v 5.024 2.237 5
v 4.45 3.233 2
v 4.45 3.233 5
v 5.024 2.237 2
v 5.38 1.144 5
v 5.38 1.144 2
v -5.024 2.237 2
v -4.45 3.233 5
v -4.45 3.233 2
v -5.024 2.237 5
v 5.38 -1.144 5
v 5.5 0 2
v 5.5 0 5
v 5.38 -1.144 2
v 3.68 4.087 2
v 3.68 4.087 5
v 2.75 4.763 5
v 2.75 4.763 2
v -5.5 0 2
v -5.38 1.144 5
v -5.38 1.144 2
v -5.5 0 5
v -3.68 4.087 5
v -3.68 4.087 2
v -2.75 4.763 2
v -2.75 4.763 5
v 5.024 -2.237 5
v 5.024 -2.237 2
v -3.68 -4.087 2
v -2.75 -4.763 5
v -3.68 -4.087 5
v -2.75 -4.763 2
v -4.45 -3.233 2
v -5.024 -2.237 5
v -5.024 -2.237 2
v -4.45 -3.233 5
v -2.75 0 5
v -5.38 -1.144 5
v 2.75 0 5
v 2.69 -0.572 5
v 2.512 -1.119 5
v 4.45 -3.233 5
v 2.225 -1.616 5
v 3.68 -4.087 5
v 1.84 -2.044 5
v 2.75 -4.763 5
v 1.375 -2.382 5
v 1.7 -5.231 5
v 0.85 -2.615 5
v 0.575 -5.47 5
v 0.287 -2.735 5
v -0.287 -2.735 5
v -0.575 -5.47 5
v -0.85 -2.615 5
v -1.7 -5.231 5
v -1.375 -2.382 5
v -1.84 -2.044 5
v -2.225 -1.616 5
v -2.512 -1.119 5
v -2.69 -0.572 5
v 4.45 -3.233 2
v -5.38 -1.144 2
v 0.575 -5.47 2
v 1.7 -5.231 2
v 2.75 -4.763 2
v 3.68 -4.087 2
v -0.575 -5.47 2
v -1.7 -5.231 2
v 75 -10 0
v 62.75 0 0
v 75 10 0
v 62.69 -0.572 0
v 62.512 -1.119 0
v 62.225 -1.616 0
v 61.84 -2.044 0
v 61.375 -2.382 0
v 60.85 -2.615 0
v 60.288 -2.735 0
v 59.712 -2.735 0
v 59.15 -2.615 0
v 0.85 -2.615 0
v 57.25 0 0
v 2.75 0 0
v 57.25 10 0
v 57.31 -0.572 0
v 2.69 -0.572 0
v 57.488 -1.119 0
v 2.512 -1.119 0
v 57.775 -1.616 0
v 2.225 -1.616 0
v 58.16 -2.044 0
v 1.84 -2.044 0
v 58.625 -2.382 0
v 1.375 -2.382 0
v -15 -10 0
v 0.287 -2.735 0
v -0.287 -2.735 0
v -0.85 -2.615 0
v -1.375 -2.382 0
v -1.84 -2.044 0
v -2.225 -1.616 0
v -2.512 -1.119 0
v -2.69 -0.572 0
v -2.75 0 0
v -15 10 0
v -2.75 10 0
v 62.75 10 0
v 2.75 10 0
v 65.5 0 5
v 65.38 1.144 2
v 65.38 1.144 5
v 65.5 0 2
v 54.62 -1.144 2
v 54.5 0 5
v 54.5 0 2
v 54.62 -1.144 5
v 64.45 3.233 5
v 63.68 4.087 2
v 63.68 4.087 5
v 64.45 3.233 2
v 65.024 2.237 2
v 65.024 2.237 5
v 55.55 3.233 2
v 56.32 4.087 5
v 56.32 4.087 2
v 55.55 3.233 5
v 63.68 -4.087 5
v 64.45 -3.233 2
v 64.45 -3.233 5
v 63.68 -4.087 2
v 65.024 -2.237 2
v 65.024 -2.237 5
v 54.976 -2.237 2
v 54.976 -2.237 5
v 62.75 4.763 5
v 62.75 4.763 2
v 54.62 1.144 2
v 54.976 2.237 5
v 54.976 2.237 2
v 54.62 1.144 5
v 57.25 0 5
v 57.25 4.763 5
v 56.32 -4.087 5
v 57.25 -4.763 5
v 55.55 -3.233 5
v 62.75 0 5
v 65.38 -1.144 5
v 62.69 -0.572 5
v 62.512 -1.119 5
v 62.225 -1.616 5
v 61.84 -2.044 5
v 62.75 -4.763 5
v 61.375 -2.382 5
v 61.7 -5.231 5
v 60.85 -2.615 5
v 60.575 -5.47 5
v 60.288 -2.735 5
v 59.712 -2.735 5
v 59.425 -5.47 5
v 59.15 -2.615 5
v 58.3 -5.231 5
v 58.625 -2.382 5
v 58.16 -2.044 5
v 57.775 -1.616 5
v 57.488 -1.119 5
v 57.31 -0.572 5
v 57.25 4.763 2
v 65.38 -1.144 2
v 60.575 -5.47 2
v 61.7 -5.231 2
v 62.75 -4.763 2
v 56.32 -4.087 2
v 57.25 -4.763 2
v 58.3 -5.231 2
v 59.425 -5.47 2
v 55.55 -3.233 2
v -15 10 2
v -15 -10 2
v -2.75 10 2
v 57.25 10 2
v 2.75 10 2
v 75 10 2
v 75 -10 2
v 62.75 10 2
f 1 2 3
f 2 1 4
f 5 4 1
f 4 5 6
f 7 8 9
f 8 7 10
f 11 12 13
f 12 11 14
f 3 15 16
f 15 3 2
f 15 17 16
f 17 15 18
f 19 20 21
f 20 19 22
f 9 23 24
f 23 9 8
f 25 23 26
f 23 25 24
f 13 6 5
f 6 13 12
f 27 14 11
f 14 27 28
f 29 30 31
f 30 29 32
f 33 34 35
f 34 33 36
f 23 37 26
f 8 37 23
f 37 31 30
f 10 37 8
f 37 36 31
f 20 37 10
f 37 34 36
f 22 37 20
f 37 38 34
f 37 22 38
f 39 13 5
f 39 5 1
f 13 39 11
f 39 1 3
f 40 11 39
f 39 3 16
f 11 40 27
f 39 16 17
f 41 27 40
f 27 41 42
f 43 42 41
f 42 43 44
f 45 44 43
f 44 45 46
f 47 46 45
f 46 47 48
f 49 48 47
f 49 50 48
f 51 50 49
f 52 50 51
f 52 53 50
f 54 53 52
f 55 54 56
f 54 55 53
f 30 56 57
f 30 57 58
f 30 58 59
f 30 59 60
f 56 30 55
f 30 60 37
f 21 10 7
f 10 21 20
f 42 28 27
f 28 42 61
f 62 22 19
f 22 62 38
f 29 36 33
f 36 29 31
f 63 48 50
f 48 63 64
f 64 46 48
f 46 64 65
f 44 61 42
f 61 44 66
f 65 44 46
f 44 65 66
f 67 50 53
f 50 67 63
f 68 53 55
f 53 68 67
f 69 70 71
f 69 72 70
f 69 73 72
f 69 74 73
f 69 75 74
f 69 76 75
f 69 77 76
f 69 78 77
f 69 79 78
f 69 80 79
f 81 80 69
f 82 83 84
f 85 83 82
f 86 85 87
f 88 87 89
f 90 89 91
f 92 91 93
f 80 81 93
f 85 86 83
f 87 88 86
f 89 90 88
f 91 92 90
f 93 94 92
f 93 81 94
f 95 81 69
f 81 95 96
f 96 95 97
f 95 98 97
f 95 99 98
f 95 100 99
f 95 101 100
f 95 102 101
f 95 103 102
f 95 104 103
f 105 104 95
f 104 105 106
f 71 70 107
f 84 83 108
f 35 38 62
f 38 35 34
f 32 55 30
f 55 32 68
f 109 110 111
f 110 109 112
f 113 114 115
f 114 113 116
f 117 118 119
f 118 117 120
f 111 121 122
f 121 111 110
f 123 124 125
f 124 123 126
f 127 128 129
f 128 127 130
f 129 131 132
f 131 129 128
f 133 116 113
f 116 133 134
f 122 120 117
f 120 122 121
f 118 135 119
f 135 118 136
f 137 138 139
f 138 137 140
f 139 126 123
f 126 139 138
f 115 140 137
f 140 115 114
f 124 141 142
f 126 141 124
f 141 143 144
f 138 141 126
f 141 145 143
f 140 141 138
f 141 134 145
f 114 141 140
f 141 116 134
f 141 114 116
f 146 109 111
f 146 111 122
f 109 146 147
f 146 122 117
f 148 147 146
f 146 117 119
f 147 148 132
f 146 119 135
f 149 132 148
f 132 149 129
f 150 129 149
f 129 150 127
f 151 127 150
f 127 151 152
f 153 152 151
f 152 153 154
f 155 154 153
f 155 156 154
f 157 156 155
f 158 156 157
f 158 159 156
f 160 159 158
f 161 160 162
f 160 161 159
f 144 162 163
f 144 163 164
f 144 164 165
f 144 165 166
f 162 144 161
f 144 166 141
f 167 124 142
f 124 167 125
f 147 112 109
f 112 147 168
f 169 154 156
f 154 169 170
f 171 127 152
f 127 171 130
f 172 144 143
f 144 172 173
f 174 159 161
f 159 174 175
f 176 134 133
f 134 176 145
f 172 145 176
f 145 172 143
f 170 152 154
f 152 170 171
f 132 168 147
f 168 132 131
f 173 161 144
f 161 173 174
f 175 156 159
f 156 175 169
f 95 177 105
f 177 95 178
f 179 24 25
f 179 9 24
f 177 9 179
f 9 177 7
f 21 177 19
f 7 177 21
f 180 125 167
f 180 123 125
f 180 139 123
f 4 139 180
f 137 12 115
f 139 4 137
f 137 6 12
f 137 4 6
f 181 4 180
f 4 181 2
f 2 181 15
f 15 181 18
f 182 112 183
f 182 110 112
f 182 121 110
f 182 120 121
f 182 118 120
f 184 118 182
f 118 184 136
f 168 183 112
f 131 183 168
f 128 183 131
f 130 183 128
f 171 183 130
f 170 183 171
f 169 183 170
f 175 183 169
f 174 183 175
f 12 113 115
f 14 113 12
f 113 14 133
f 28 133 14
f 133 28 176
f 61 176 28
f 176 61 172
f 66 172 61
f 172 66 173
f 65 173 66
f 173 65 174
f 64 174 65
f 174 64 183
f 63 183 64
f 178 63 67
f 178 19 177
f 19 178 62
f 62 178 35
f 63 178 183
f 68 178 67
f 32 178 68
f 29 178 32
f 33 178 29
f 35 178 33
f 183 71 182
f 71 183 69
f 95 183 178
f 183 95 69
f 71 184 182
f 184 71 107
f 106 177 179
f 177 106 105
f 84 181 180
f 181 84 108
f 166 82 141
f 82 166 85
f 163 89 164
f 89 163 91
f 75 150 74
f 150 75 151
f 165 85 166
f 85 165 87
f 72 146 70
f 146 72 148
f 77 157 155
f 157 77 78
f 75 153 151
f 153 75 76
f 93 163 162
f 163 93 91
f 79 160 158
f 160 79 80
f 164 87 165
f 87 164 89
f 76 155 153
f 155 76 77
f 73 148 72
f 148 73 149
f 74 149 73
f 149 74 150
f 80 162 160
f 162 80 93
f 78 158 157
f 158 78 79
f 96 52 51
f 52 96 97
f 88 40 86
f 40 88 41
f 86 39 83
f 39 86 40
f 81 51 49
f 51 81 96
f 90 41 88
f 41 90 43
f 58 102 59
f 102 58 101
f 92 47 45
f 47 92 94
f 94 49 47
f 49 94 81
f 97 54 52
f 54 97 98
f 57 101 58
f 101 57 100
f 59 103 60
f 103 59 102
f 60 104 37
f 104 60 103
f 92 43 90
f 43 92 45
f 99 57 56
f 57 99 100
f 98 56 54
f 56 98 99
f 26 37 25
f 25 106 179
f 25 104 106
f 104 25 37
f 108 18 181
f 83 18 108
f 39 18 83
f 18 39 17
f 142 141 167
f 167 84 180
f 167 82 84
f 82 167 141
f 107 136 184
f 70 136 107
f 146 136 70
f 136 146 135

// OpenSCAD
// file: osat_cad_param.scad
x_length = 90;
y_length = 90;
z_length = 30;

wall_thickness = 1.5;
bottom_thickness = 2;

battery_x_length = 53;
battery_y_length = 17;


glass_mount_hole_diameter = 5.5;
glass_mount_hole_x_dist   = 15;
glass_mount_hole_y_dist   = 20;

piezo_mount_width = 40;
piezo_mount_height = 6;
piezo_y_dist      = 20;
piezo_solder_fix_hole_diameter = 2;
piezo_solder_fix_hole_diameter_2 = 3.5;

piezo_height_step    = 0.2;
piezo_diameter       = 27;
piezo_diameter_inner = 20;

led_mount_width      = 12.5;
led_mount_height     = 5;
led_cable_duct_width = 4;

//param solder mount
x_lenth_solder_mount = 12;


//param piezo_fix
y_length_piezo_fix = 20;


$fs = 0.01;
// main file
include<osat_cad_param.scad>

x_dist = x_length - glass_mount_hole_x_dist * 2;

difference()
{
  //base
  union()
  {
    cylinder(d = glass_mount_hole_diameter * 2, h = 5, center = false);
    translate([x_dist, 0, 0]) {
      cylinder(d = glass_mount_hole_diameter * 2, h = 5, center = false);
    }
    translate([(x_length - x_dist)/-2, -10, 0]){ cube([x_length, 20, 2], center = false); }
  }
  //holes

  translate([x_dist, 0, 0]) {
      cylinder(d = glass_mount_hole_diameter, h = 25, center = true);
  }
  cylinder(d = glass_mount_hole_diameter, h = 25, center = true);

  //notch
  translate([0, 15, 0]){ cube([glass_mount_hole_diameter, 30, 30], center = true); }
  translate([x_dist, 15, 0]){ cube([glass_mount_hole_diameter, 30, 30], center = true); }

}
